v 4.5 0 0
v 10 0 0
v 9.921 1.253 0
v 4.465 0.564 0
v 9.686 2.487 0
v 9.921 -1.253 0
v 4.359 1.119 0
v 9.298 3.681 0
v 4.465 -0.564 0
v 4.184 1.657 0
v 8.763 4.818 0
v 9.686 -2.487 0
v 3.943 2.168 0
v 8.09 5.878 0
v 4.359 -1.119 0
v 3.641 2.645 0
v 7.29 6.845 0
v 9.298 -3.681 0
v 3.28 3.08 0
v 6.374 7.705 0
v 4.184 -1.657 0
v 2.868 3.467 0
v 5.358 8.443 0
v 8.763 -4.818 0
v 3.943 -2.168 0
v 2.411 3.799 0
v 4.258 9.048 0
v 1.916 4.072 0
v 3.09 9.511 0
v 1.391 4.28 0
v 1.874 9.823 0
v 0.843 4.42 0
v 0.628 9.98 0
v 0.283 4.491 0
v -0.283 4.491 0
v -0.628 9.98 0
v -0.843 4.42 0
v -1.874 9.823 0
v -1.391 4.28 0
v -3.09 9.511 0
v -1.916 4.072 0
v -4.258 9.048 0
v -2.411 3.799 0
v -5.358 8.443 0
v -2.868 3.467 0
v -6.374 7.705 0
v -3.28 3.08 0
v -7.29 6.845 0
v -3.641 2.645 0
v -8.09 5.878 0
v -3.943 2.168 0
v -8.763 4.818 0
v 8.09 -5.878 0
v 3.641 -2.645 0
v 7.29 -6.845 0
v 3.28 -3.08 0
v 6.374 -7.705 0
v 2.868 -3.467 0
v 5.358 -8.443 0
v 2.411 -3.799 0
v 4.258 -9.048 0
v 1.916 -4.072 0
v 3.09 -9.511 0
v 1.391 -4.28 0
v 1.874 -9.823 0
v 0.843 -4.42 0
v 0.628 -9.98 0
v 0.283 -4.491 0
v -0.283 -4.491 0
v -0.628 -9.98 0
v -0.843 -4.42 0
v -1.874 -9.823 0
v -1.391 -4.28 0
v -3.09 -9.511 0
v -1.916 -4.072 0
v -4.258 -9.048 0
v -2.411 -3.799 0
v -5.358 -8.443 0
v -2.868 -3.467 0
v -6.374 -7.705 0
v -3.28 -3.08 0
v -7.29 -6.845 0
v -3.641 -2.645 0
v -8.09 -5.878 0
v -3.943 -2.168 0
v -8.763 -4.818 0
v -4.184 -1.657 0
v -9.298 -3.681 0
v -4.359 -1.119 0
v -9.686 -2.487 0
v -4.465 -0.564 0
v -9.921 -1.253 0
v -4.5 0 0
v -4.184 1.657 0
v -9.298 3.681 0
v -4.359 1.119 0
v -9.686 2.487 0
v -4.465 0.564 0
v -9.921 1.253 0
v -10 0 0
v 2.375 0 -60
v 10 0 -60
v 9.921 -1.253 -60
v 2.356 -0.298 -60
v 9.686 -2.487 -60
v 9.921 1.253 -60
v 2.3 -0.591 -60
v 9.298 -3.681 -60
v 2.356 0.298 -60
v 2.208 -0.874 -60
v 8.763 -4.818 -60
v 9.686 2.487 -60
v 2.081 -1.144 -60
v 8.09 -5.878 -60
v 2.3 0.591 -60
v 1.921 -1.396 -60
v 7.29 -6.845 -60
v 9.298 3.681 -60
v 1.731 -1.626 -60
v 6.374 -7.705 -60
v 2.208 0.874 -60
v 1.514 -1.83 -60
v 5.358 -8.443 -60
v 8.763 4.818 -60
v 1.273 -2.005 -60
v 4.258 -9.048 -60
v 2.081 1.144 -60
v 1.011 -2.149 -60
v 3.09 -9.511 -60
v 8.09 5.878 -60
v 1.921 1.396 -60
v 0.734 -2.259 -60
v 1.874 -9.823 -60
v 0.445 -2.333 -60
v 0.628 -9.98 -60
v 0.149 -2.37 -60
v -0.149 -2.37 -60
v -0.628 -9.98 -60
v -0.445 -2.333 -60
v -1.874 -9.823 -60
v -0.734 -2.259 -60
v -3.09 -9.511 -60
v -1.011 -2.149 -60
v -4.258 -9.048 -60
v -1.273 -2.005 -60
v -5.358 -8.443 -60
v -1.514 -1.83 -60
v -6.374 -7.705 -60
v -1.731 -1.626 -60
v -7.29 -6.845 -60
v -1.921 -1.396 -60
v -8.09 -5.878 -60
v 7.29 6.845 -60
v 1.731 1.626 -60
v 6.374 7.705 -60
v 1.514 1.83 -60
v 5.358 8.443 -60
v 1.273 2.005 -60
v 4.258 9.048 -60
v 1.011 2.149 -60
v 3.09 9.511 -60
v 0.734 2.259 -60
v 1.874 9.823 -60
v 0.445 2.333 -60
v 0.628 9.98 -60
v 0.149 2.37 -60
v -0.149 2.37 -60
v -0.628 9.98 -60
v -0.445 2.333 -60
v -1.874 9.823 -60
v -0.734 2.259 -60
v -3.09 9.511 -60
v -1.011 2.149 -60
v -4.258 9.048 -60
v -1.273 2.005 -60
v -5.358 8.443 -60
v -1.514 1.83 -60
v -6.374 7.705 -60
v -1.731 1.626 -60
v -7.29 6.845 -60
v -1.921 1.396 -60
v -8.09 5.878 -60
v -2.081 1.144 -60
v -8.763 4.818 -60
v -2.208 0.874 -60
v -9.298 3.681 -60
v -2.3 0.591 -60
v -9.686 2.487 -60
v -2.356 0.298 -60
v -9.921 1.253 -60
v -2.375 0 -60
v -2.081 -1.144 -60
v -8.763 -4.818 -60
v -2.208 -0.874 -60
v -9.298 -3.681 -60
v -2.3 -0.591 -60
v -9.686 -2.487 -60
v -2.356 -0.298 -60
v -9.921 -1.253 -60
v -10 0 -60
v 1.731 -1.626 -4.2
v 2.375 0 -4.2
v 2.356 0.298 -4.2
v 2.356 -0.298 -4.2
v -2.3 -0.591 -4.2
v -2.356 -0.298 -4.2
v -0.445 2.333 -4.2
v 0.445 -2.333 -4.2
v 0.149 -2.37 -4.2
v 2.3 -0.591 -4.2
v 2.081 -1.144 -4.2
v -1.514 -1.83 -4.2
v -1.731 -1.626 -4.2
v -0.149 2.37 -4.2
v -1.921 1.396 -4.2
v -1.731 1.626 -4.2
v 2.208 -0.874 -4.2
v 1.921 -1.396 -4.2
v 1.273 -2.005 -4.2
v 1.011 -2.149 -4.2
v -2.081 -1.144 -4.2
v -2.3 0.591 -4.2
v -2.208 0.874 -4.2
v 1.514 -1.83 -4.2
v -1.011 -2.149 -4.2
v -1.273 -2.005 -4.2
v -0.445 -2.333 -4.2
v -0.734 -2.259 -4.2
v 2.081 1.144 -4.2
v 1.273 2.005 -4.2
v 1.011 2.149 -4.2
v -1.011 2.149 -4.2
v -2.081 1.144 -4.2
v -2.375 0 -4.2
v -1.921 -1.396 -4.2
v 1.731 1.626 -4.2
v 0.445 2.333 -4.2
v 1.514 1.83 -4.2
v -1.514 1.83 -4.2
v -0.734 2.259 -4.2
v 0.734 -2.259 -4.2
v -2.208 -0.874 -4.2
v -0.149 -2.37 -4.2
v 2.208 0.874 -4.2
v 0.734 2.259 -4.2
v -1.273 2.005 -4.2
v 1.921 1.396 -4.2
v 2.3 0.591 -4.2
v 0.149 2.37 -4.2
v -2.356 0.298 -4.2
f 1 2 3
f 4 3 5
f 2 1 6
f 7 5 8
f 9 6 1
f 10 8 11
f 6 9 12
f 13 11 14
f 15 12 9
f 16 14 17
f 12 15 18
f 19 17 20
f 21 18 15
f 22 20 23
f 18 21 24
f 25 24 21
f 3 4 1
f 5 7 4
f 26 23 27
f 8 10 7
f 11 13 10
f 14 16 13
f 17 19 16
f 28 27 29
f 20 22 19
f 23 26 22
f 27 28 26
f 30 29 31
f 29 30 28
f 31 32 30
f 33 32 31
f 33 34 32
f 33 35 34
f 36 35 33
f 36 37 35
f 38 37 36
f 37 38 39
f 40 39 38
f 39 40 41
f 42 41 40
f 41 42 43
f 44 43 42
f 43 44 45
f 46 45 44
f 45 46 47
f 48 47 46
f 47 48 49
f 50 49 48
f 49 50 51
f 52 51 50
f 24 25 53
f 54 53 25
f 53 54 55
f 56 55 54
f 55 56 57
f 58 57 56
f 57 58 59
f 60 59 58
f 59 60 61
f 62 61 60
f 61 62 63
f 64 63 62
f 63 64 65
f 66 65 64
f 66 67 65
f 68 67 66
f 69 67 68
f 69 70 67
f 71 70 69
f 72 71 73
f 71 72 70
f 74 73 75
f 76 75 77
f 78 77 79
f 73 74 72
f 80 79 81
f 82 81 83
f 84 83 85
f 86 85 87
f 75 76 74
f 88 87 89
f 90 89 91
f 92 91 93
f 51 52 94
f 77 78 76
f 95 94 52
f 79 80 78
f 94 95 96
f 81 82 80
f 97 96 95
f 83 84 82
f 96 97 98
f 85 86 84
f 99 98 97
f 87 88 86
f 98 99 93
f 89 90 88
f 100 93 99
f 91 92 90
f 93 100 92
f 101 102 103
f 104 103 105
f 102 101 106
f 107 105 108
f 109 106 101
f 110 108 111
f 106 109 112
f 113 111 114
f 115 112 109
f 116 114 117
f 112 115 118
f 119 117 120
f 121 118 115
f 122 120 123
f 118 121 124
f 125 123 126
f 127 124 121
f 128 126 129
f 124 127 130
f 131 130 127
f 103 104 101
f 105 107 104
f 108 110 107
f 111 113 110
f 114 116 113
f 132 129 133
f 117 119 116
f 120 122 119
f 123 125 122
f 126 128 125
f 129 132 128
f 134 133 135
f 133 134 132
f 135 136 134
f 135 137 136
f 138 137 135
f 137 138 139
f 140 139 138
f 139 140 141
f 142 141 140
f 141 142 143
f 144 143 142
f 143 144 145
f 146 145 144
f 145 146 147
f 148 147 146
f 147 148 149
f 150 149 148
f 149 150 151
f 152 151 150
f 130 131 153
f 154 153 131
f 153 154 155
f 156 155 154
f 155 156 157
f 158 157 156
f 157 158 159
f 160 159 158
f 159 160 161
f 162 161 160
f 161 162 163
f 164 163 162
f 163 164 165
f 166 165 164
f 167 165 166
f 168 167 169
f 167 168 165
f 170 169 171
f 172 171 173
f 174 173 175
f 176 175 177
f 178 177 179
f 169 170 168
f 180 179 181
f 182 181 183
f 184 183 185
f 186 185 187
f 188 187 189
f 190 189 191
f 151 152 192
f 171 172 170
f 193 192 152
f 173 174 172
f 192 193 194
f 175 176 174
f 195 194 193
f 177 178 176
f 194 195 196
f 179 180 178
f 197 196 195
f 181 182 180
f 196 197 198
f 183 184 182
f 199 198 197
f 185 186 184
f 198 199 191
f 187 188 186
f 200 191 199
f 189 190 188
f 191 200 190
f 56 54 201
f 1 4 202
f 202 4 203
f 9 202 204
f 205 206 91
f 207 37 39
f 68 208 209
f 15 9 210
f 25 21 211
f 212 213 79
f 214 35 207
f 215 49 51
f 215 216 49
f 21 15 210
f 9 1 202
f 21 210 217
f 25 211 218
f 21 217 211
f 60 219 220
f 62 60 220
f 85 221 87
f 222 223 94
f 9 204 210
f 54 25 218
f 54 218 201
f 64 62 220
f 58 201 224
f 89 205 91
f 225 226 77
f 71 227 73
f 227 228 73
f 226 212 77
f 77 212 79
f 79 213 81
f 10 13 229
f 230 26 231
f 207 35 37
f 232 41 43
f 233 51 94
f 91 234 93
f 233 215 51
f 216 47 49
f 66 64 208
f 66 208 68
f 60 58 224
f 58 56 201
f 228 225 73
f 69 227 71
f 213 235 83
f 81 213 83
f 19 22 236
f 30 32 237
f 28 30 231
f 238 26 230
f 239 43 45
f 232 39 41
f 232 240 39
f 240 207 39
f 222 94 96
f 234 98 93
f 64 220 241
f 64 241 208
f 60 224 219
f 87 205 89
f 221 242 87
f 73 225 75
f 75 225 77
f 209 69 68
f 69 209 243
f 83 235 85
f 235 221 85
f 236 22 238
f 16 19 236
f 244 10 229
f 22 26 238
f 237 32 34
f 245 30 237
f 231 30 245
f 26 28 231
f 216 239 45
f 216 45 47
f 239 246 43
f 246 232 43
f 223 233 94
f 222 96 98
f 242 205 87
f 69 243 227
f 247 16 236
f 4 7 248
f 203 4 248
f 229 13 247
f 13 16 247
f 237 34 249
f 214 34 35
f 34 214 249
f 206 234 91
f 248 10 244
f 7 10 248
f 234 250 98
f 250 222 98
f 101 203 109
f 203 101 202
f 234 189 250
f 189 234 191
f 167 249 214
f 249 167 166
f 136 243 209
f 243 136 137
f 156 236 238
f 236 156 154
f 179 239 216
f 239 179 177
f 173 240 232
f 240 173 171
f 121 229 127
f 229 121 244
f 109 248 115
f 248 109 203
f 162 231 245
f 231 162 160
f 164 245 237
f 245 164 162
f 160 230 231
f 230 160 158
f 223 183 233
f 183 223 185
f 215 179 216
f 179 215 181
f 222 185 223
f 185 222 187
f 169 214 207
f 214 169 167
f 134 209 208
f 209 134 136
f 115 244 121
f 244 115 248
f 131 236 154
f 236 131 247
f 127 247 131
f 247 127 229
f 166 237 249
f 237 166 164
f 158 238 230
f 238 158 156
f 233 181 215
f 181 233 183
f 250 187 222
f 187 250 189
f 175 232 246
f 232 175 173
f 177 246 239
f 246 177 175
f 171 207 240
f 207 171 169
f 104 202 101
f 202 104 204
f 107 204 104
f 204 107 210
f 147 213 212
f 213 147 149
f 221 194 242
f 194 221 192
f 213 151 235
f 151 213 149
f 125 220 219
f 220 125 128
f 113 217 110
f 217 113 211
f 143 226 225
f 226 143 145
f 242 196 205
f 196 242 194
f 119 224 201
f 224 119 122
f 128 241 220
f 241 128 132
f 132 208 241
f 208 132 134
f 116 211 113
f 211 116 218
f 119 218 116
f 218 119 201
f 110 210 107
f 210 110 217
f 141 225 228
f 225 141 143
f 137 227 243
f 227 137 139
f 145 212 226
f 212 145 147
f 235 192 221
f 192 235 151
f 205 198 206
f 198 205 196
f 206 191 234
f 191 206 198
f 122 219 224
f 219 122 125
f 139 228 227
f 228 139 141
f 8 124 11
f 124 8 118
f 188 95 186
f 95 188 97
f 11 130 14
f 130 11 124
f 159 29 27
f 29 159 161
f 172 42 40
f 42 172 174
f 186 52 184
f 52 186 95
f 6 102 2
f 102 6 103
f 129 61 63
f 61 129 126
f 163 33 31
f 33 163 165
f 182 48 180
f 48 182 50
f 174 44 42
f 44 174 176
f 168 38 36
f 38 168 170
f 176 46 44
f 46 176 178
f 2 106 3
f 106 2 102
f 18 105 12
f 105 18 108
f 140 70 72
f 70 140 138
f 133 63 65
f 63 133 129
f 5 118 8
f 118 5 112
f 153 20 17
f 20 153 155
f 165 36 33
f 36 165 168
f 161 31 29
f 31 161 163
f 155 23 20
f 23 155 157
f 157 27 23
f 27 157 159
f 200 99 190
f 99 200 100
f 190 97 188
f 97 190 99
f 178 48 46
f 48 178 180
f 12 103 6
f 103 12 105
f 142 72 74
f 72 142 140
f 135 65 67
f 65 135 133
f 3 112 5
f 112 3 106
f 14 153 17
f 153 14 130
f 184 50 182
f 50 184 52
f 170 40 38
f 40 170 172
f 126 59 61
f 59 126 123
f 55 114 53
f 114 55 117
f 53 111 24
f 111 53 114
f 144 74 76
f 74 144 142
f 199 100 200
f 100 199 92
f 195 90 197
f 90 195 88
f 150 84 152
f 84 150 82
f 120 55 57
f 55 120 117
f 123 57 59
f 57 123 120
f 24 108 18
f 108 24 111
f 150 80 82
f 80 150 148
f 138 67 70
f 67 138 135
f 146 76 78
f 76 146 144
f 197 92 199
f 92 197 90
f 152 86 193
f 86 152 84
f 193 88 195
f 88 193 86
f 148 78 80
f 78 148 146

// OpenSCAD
$fn = 50;


difference() {
	union() {
		translate(v = [0, 0, -60.0000000000]) {
			cylinder(h = 60, r = 10.0000000000);
		}
		cylinder(h = 0, r = 20.0000000000);
	}
	union() {
		translate(v = [0, 0, 0]) {
			rotate(a = [0, 0, 0]) {
				difference() {
					union() {
						#translate(v = [0, 0, -60.0000000000]) {
							cylinder(h = 60, r = 2.2500000000);
						}
						#translate(v = [0, 0, -4.2000000000]) {
							cylinder(h = 4.2000000000, r1 = 2.3750000000, r2 = 4.5000000000);
						}
						#translate(v = [0, 0, -60.0000000000]) {
							cylinder(h = 60, r = 2.3750000000);
						}
						#translate(v = [0, 0, -60.0000000000]) {
							cylinder(h = 60, r = 2.2500000000);
						}
					}
					union();
				}
			}
		}
	}
}
